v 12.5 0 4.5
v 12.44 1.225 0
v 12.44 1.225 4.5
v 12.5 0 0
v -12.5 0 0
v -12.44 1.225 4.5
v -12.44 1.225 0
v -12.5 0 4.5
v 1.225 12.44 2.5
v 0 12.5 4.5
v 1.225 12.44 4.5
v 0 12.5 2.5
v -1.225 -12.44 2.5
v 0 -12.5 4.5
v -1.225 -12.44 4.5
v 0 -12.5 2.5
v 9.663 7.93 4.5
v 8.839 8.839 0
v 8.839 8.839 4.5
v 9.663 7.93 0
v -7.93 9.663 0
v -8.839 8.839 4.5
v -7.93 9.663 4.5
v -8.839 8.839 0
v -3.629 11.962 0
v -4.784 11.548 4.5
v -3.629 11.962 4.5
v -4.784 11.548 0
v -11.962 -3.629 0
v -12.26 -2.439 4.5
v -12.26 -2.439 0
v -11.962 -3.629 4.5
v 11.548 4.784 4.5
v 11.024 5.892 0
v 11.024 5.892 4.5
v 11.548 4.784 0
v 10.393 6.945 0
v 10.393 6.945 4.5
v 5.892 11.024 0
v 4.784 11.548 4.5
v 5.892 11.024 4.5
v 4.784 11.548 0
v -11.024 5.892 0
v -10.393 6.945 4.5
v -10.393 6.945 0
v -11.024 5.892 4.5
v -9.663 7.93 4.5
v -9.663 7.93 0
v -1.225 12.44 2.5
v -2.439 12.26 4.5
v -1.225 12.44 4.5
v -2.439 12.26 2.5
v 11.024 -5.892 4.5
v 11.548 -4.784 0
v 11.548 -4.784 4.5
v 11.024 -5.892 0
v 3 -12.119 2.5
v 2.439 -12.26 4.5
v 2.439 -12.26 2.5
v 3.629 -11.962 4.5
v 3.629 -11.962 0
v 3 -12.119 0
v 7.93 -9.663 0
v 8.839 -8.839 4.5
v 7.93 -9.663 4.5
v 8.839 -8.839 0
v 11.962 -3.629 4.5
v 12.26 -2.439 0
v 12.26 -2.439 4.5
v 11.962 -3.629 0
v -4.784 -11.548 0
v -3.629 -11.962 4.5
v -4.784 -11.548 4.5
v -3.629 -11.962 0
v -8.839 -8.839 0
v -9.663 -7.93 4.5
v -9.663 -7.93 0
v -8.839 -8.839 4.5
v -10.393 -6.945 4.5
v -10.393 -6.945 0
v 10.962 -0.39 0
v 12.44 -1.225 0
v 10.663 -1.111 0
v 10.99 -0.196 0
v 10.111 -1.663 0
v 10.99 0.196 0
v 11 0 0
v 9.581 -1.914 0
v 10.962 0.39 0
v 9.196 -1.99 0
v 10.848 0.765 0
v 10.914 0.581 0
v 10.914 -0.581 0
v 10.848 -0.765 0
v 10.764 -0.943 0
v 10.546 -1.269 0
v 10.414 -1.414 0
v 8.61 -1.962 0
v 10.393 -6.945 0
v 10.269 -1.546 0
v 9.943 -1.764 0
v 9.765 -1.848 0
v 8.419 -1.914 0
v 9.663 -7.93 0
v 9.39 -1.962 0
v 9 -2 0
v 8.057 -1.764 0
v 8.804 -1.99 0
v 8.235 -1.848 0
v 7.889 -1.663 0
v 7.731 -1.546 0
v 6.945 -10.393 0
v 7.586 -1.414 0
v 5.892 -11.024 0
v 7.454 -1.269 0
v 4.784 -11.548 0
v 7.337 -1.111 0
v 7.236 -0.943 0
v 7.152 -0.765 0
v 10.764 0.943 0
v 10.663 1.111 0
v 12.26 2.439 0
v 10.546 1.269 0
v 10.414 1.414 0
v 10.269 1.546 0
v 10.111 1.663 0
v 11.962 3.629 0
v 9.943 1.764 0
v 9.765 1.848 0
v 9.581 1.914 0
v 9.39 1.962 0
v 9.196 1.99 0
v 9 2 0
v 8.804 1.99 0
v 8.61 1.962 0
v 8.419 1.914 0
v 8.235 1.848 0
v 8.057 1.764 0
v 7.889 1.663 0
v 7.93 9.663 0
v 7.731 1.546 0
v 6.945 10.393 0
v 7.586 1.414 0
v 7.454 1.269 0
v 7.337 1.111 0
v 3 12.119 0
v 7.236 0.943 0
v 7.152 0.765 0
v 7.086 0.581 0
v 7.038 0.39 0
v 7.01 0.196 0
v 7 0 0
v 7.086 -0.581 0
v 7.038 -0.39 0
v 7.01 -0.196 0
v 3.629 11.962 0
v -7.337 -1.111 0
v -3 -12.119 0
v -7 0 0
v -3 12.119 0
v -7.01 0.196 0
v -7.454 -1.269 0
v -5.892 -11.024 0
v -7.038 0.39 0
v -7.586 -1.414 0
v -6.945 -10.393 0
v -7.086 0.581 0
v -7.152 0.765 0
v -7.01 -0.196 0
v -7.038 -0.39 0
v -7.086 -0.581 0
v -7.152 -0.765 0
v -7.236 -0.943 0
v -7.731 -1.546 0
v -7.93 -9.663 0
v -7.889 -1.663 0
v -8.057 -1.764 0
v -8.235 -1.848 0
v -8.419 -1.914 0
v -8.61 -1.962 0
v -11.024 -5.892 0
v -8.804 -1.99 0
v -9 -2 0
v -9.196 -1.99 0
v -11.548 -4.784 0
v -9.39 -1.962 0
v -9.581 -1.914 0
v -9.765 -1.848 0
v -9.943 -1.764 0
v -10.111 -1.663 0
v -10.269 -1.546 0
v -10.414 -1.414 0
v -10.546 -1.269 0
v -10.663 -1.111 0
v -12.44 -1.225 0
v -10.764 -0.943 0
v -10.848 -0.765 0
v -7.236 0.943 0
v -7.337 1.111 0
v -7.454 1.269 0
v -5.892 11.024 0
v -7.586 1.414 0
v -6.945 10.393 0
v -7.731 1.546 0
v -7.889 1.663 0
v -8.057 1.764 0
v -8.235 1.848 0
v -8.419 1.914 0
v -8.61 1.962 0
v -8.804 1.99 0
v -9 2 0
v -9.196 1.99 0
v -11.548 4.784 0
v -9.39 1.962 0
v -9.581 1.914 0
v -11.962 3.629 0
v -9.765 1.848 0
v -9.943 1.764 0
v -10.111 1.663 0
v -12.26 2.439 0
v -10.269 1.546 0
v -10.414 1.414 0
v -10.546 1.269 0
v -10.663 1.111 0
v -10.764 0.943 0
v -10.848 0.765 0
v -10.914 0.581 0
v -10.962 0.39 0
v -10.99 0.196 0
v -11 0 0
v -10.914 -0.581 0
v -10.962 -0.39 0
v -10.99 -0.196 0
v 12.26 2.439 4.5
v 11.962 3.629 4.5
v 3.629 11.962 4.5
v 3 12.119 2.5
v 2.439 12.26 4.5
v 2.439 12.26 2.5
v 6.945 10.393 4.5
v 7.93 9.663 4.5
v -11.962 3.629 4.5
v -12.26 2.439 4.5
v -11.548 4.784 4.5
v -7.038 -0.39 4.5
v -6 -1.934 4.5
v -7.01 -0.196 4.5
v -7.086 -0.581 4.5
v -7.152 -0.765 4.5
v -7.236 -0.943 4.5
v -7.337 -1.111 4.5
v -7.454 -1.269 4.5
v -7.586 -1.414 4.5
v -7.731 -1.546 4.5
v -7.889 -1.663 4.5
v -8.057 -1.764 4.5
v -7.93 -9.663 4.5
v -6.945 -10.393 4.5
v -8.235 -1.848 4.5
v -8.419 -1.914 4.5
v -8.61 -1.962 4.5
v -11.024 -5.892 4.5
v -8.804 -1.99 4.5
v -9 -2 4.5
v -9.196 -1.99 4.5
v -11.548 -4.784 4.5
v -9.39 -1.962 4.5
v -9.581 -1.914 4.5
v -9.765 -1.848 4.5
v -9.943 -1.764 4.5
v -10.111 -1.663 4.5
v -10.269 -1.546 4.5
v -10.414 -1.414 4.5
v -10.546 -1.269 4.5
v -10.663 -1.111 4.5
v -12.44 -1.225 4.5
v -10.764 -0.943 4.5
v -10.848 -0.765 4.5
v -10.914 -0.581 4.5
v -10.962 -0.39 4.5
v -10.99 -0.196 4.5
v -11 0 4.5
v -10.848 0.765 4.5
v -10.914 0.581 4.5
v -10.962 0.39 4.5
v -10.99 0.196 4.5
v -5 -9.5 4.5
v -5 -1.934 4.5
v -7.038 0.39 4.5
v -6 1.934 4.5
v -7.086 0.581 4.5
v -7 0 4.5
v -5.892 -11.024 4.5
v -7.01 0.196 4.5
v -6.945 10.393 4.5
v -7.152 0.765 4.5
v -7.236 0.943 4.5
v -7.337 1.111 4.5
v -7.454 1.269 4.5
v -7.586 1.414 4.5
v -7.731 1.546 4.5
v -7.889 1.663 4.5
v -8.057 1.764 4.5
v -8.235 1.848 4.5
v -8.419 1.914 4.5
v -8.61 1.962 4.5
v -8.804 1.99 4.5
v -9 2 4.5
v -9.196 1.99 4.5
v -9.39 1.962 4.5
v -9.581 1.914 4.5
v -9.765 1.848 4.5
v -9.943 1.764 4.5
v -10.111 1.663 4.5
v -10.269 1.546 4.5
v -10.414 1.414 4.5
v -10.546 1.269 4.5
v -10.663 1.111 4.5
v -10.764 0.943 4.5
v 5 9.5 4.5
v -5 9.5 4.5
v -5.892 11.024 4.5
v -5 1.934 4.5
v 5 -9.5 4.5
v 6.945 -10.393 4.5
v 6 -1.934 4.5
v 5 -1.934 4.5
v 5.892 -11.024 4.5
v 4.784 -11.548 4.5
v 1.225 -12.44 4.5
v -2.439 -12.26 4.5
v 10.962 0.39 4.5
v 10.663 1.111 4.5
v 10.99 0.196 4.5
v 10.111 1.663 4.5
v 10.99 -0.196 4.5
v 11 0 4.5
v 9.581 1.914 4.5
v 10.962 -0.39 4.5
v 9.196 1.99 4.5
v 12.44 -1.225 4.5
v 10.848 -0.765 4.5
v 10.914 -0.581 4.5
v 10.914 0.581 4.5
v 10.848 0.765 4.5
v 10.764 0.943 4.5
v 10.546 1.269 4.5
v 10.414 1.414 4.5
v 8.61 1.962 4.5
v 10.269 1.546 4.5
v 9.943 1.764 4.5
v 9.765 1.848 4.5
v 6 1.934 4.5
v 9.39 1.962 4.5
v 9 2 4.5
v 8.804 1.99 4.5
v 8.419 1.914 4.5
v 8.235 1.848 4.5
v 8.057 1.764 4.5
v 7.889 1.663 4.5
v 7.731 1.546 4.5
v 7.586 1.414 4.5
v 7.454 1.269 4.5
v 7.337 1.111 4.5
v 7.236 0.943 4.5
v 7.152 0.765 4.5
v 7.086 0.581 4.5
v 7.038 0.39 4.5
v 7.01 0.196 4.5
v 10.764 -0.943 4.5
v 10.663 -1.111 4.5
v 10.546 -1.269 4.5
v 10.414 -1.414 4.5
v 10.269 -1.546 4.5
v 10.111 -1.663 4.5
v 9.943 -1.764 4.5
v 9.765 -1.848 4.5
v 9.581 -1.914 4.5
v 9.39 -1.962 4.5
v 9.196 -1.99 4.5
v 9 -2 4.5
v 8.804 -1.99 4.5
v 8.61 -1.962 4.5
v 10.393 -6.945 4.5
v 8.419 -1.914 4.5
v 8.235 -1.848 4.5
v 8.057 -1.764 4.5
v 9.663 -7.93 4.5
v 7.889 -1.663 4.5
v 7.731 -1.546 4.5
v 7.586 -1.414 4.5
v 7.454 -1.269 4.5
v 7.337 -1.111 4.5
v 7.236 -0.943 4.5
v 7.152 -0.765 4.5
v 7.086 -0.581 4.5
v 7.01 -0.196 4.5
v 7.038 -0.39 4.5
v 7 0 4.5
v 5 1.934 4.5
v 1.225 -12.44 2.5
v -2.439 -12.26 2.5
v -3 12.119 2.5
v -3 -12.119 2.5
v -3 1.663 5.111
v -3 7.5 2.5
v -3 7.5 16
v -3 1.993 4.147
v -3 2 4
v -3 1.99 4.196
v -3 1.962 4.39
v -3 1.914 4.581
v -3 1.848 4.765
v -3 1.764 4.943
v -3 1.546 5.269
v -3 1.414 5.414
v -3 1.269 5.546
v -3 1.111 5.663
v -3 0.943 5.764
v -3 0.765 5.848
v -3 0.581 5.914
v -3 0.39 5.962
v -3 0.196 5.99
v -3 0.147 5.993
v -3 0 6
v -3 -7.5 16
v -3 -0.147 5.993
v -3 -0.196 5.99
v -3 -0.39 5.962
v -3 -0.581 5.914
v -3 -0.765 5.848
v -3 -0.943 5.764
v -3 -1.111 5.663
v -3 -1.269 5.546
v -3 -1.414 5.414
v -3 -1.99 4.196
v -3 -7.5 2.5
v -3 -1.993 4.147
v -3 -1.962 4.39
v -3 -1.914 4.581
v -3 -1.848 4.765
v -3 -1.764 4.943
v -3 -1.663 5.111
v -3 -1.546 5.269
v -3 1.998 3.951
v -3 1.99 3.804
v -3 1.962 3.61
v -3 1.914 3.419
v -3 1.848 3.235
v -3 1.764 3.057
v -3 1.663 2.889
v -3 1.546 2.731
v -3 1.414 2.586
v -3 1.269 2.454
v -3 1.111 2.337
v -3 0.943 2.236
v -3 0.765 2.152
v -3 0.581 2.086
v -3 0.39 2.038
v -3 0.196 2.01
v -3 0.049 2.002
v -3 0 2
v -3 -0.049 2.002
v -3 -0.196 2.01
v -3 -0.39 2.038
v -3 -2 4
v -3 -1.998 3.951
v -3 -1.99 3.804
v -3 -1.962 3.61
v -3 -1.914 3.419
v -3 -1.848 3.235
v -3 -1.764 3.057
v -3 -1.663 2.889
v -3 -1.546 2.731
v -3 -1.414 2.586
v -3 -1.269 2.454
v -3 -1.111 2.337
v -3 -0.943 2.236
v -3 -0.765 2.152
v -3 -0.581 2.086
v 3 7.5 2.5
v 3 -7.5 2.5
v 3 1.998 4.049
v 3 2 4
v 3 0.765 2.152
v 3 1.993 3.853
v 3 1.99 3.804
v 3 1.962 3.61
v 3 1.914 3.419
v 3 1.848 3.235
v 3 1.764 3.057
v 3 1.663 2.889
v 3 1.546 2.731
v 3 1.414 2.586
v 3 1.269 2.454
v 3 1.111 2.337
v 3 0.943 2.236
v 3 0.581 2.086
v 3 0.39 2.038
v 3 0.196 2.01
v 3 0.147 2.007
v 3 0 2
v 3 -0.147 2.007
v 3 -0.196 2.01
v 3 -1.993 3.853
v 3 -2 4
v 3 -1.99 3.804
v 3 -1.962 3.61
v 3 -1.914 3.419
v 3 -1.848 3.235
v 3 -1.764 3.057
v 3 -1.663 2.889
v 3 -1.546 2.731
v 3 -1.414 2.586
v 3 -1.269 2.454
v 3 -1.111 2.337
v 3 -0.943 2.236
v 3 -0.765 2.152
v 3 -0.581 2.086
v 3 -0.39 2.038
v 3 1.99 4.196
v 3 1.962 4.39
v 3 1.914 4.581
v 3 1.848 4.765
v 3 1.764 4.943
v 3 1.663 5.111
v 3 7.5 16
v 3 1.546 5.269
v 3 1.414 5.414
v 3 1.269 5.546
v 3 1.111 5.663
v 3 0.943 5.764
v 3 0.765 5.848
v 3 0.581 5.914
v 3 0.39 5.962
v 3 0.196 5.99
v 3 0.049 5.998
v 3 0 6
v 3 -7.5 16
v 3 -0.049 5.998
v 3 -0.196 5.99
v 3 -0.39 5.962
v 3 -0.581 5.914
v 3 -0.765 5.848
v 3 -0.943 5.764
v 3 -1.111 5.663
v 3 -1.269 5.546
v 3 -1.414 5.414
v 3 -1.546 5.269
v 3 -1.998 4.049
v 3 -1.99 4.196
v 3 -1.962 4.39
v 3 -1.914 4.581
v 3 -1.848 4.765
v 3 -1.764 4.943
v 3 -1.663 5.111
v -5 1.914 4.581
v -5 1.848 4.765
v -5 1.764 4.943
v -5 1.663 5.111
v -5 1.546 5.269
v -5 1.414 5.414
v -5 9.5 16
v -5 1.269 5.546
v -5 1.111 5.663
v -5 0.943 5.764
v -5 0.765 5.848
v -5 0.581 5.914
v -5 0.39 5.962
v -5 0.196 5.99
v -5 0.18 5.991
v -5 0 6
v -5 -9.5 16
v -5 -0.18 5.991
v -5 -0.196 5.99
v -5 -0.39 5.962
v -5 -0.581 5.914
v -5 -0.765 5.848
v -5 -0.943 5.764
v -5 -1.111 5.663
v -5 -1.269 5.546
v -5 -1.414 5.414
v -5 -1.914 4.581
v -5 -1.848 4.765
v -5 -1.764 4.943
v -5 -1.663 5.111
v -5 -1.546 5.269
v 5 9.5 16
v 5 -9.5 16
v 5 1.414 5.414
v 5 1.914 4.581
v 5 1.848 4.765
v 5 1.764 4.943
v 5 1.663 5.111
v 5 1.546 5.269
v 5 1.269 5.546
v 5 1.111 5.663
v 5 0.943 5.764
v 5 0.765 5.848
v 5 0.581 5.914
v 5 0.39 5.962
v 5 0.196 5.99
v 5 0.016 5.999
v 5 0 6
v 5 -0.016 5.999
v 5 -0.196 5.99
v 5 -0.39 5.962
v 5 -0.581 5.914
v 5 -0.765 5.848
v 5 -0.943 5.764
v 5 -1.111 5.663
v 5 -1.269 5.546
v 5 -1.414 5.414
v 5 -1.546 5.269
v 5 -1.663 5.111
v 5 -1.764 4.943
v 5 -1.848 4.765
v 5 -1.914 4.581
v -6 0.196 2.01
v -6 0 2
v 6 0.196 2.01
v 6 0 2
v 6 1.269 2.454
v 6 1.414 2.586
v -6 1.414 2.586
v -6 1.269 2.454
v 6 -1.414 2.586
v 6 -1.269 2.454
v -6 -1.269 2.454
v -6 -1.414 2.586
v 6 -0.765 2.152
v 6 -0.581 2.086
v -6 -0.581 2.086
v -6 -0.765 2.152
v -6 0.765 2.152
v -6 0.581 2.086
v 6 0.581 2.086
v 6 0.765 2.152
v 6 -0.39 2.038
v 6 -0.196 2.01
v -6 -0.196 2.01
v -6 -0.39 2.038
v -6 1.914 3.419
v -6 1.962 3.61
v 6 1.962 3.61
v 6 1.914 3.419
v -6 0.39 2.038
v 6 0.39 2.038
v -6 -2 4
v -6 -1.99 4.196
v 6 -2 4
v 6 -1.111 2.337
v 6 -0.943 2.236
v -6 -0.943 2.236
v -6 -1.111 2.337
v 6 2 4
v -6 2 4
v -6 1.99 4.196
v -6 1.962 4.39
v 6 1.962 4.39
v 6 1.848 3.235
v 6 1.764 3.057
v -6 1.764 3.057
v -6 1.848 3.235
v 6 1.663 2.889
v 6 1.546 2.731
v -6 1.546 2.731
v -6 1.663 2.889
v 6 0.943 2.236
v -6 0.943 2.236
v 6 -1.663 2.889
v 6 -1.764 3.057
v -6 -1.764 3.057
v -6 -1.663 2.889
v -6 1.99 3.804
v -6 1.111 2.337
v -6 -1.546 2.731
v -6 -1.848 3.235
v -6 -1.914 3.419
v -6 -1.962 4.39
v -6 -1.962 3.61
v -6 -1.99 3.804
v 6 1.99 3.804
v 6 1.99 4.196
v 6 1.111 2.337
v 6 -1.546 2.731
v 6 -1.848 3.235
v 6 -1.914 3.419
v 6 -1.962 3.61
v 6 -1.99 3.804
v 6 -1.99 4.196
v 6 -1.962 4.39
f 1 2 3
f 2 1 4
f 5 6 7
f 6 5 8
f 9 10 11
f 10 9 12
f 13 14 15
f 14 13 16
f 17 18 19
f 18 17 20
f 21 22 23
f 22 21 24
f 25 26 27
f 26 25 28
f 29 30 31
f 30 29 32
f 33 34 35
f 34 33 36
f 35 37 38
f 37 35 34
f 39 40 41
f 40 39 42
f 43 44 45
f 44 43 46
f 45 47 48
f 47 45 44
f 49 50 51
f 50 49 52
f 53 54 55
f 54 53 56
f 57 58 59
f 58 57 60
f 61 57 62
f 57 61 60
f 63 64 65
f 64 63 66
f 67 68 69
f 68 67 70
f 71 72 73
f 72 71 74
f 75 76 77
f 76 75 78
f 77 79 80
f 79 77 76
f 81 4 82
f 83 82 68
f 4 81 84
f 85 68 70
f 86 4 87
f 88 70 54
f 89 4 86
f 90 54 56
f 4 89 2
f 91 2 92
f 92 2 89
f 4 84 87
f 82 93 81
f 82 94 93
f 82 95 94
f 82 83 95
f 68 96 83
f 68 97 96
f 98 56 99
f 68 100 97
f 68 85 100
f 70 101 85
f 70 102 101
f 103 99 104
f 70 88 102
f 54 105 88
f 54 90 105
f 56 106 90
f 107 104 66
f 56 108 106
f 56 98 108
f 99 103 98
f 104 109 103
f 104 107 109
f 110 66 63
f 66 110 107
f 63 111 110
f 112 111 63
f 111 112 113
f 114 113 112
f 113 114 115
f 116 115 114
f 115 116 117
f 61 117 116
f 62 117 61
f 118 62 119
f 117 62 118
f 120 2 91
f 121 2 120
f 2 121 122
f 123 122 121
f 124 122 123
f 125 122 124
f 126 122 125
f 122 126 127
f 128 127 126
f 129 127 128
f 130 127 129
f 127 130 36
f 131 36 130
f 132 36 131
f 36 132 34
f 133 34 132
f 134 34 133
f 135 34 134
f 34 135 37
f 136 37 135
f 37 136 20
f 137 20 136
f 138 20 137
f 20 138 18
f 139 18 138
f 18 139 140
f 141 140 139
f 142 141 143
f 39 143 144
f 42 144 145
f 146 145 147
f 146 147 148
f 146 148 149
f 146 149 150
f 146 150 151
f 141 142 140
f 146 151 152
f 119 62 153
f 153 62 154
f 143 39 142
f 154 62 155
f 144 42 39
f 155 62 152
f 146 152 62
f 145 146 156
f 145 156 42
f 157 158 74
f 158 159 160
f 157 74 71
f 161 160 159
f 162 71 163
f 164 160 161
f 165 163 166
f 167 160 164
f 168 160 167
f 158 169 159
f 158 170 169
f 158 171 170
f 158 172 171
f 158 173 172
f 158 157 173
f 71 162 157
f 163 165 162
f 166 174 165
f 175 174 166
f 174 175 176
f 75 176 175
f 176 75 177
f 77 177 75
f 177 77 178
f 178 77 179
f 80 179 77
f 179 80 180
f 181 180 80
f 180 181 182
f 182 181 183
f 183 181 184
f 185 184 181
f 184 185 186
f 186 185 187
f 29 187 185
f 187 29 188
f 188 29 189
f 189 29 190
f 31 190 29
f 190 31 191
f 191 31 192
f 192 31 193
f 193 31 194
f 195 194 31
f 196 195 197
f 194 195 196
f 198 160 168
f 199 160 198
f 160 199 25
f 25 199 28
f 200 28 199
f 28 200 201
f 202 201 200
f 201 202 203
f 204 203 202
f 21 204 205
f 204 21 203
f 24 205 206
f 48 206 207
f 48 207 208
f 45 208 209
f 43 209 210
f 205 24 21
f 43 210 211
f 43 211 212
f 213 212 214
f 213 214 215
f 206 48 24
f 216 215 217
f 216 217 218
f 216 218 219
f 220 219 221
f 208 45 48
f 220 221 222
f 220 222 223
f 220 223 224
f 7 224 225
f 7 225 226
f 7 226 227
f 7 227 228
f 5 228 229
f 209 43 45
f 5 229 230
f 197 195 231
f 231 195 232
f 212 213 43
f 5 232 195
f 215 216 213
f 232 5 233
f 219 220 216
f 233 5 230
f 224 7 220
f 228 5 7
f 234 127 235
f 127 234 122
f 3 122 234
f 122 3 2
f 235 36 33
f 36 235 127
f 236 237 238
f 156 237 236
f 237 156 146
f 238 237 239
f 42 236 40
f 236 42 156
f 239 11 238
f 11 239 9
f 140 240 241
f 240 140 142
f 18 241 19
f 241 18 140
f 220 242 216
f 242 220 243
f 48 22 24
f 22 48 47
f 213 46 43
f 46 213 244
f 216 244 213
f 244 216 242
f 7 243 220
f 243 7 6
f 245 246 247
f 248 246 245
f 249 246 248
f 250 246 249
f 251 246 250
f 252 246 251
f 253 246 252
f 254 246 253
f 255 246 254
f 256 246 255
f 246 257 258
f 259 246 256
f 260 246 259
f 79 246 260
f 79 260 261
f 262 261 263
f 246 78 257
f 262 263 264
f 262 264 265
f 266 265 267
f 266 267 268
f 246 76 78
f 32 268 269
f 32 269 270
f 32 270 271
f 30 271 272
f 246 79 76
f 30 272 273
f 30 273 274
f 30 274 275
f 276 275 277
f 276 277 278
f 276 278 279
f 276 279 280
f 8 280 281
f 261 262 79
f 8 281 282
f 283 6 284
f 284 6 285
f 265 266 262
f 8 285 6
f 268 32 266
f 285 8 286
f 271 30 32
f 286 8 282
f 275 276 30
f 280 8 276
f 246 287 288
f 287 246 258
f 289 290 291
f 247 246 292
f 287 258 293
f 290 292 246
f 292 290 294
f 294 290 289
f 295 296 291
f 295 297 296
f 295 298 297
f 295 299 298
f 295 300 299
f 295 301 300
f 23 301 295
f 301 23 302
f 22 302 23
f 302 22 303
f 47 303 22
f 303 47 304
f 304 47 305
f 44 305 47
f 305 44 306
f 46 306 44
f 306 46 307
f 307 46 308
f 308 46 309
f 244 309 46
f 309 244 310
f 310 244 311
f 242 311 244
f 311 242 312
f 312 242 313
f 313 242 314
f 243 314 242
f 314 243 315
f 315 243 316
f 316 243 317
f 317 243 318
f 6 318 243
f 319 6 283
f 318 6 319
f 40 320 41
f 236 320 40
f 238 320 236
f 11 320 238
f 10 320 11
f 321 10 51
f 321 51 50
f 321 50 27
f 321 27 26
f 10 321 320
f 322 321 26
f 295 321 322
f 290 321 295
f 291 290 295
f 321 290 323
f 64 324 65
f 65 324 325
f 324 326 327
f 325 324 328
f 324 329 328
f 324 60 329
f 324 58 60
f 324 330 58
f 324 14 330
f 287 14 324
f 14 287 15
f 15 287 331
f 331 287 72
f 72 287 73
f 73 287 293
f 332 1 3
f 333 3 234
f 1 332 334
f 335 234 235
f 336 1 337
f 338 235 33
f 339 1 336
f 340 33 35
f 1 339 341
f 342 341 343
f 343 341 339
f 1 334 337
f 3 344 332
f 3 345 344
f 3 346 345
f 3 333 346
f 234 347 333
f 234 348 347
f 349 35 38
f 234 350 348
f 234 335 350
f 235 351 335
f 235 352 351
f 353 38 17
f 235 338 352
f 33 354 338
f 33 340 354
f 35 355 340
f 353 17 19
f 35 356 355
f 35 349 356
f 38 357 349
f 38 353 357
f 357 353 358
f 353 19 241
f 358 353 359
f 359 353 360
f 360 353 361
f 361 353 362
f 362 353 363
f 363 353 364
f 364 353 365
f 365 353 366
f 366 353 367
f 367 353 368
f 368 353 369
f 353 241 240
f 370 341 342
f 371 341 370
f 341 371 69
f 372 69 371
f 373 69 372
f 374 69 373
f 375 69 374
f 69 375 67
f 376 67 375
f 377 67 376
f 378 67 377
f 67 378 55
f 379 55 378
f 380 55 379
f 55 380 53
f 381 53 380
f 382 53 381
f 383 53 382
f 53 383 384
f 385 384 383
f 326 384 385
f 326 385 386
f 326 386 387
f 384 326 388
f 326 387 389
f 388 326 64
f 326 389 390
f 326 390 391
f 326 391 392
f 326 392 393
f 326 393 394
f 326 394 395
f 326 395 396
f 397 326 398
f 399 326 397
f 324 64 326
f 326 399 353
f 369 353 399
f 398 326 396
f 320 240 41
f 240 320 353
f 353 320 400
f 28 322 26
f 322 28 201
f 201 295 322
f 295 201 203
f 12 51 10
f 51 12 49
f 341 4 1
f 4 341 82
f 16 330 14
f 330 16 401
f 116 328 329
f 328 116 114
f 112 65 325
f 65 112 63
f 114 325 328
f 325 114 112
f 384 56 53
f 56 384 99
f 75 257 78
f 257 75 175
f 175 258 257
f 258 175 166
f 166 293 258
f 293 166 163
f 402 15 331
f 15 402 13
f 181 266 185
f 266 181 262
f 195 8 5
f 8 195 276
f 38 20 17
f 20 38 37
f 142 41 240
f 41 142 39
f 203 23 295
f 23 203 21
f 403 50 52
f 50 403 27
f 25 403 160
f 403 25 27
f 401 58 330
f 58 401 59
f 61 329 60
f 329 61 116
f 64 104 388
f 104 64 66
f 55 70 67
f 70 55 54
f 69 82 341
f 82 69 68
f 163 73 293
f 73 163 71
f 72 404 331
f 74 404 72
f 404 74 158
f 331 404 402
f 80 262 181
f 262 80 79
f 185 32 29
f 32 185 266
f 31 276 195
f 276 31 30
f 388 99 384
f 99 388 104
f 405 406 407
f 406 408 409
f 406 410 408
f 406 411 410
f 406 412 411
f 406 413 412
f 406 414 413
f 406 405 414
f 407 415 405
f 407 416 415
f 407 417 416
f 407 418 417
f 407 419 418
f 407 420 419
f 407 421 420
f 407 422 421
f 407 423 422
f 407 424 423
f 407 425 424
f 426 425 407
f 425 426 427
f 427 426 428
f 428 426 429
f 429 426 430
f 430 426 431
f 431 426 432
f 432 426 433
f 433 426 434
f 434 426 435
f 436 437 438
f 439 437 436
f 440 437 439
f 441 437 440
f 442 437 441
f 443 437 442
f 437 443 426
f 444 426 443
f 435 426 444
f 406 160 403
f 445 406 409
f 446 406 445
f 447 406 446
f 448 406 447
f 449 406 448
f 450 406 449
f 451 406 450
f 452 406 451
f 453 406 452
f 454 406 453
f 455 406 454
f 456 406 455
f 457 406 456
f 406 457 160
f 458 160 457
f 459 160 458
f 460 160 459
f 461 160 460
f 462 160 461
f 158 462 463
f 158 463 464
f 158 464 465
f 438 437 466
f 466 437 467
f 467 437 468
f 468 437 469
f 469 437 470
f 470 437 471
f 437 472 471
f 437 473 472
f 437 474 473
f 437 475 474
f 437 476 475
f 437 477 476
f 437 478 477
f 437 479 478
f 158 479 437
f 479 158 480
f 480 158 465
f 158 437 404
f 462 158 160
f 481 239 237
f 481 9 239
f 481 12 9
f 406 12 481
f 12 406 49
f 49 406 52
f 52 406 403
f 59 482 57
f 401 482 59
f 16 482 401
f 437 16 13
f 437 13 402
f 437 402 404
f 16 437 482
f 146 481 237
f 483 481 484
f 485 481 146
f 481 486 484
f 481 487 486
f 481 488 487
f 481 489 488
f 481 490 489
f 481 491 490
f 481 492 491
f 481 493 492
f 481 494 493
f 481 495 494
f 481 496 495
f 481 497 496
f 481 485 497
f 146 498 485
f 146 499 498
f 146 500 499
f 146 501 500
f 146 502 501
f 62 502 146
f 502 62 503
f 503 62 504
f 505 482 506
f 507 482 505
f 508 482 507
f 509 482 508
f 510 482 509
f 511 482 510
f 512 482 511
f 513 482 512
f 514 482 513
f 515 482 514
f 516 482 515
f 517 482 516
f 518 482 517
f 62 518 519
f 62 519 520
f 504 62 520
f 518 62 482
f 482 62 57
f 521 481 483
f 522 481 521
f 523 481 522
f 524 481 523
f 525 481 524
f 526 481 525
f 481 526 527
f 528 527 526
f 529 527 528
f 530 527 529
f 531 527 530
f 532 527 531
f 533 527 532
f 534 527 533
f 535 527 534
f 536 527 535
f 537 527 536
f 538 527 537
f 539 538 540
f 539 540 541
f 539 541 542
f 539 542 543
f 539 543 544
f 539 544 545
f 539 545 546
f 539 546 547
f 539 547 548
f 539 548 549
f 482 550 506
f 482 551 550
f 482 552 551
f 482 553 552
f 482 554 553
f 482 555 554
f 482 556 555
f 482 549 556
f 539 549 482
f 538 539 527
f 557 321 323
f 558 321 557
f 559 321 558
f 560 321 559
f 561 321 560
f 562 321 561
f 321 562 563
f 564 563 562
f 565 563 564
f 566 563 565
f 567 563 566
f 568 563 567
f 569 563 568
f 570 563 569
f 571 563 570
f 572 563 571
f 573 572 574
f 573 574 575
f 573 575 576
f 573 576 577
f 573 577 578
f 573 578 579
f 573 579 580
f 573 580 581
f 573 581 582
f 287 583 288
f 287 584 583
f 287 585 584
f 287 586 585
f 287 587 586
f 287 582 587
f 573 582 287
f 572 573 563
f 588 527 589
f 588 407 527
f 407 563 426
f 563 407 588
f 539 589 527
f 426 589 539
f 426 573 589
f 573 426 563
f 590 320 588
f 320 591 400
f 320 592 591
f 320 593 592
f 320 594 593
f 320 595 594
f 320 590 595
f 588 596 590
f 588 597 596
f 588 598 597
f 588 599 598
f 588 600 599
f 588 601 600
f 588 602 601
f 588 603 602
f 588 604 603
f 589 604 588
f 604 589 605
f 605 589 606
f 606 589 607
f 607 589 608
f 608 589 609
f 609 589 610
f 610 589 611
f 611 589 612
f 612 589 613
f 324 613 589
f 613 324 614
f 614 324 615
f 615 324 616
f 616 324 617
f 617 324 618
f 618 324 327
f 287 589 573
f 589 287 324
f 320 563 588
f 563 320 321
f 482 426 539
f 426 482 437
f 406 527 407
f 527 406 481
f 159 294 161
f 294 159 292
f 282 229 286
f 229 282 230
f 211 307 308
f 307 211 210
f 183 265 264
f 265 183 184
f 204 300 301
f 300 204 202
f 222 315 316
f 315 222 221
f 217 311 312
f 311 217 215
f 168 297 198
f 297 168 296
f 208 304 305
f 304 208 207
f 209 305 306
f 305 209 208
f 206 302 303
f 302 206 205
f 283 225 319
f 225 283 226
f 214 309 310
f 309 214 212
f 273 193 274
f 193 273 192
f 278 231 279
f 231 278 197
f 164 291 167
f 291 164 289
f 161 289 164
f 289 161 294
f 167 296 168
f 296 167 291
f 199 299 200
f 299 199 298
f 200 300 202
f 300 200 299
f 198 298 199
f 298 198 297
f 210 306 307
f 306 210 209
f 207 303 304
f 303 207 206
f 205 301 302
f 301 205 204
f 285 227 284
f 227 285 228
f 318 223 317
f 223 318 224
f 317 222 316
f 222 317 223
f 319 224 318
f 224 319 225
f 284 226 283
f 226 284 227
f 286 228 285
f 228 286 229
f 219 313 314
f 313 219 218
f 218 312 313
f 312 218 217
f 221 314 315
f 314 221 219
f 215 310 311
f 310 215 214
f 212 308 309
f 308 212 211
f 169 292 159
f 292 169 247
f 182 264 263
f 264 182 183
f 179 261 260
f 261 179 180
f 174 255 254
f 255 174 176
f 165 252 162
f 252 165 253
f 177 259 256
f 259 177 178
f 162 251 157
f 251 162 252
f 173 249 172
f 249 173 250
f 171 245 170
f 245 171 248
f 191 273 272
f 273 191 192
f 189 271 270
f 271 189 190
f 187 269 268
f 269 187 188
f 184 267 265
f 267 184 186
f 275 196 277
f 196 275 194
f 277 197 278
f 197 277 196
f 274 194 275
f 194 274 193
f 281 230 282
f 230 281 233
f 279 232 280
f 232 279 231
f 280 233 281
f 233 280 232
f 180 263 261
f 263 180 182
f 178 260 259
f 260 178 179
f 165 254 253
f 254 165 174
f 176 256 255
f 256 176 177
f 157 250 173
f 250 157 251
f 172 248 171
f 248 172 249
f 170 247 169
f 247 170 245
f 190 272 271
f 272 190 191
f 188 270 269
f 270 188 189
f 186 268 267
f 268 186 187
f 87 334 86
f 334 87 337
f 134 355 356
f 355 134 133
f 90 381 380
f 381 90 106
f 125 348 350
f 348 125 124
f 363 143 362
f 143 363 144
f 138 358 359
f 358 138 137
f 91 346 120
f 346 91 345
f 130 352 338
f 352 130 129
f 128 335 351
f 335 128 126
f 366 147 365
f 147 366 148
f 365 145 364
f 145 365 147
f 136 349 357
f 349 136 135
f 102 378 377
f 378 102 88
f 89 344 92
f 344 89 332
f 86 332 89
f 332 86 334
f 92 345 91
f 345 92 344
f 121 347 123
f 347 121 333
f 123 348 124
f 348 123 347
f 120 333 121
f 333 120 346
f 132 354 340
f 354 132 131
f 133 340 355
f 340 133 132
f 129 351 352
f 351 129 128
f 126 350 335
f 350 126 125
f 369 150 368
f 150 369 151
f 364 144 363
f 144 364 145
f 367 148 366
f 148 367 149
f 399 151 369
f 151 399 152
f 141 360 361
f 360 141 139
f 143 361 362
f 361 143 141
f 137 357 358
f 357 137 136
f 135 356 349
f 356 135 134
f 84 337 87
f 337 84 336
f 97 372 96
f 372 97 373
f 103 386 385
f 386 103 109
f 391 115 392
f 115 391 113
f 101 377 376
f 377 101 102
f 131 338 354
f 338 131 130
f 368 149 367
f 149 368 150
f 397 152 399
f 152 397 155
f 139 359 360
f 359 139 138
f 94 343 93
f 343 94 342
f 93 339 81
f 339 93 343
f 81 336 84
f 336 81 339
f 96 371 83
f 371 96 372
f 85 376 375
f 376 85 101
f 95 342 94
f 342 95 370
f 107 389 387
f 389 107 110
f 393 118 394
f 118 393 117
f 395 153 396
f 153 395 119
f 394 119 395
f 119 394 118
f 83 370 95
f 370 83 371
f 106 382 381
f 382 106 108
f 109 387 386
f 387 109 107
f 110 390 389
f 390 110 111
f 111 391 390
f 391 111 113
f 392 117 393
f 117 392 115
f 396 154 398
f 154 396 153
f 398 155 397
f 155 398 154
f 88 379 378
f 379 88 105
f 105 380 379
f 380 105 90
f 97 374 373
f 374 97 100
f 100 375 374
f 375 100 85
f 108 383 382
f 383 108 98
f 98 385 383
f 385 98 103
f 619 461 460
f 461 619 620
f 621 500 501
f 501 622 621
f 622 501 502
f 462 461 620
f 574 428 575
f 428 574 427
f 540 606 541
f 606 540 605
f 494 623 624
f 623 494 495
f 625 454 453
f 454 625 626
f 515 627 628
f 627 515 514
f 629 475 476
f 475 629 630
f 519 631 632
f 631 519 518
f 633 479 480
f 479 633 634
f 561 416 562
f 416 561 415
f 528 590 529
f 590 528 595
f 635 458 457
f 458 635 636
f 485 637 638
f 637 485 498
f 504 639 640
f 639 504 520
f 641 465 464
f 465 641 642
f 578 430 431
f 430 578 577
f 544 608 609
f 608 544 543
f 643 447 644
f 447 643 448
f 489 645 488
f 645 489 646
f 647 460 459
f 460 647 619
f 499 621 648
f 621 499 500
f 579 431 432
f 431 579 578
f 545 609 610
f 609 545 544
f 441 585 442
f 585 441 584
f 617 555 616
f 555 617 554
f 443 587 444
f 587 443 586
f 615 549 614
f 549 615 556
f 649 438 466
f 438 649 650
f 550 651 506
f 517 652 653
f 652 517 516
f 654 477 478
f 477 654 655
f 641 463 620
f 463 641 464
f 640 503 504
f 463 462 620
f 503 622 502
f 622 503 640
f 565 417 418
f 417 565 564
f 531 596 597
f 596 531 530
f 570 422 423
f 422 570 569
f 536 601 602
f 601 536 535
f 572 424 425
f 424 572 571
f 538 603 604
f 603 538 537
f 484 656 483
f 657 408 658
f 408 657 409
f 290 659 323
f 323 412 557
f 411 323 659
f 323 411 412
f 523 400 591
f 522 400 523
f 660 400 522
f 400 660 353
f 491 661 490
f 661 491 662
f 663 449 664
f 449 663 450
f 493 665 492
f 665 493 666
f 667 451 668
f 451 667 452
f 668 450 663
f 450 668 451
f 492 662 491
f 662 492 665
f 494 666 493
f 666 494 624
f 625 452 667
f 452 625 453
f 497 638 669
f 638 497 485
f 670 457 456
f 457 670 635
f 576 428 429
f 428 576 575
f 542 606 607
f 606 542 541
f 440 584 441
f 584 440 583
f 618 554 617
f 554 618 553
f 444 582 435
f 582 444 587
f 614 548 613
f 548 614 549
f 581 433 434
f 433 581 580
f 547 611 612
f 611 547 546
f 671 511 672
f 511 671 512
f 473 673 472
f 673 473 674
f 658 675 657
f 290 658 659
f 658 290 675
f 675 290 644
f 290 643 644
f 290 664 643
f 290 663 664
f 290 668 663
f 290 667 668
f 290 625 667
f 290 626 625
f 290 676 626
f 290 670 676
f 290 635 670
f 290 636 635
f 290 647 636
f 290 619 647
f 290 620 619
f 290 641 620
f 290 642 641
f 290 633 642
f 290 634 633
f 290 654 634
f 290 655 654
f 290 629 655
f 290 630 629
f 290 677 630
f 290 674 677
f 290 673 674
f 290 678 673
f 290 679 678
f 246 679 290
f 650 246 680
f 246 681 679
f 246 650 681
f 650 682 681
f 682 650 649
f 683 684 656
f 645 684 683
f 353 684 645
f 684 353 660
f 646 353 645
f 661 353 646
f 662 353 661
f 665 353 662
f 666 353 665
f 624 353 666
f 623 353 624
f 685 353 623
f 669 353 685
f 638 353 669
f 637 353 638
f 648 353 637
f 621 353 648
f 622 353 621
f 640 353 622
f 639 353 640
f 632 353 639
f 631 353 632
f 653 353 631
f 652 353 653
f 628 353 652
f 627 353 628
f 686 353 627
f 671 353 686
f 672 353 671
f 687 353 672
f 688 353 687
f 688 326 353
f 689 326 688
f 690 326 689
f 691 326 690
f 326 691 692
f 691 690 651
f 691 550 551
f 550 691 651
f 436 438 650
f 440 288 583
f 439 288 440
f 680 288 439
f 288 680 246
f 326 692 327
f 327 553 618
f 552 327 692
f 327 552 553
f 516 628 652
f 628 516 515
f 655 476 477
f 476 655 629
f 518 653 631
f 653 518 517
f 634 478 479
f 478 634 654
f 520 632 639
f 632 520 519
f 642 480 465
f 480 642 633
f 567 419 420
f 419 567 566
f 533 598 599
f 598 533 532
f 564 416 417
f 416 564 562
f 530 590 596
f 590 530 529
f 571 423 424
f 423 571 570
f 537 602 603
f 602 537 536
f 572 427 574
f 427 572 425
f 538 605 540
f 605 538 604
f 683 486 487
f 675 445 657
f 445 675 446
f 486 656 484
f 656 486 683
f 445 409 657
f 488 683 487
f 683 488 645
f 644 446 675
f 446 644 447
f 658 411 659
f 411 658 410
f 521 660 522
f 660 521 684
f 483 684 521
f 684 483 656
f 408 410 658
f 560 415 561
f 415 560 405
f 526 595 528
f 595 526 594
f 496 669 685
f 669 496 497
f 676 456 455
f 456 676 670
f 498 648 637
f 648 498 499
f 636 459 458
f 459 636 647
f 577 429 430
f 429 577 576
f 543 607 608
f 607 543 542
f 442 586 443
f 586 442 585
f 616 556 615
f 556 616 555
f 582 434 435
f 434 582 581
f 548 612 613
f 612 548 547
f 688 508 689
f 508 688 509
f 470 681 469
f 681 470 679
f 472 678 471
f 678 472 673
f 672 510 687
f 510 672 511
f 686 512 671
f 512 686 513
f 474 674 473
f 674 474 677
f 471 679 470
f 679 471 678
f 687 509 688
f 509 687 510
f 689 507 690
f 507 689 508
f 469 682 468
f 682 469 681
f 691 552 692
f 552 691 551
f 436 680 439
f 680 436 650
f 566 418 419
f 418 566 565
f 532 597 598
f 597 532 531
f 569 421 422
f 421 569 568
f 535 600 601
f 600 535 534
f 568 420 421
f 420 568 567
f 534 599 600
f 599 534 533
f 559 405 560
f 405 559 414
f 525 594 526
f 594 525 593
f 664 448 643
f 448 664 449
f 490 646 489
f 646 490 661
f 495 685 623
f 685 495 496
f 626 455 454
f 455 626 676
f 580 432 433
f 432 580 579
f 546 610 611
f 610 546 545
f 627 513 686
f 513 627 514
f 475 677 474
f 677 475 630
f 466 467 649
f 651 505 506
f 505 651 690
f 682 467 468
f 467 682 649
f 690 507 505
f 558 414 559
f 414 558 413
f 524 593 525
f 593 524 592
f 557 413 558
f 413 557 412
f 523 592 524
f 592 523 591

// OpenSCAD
$fn=64;

difference(){
    union(){
        translate([0, 0, 10]) cube([10, 19, 12], true);
        difference(){
            cylinder(4.5,d=25,true);
            translate([0, 0, 1]) cube([6, 60, 3], true);
        }
    }
    translate([0, 0, 6.1]) cube([6, 15, 20], true);
    
    translate([-9, 0, 0]) cylinder(10,2,2,true);
    translate([9, 0, 0]) cylinder(10,2,2,true);
    translate([0, 0, 4]) rotate([0,90,0]) cylinder(12,2,2,true);
}
